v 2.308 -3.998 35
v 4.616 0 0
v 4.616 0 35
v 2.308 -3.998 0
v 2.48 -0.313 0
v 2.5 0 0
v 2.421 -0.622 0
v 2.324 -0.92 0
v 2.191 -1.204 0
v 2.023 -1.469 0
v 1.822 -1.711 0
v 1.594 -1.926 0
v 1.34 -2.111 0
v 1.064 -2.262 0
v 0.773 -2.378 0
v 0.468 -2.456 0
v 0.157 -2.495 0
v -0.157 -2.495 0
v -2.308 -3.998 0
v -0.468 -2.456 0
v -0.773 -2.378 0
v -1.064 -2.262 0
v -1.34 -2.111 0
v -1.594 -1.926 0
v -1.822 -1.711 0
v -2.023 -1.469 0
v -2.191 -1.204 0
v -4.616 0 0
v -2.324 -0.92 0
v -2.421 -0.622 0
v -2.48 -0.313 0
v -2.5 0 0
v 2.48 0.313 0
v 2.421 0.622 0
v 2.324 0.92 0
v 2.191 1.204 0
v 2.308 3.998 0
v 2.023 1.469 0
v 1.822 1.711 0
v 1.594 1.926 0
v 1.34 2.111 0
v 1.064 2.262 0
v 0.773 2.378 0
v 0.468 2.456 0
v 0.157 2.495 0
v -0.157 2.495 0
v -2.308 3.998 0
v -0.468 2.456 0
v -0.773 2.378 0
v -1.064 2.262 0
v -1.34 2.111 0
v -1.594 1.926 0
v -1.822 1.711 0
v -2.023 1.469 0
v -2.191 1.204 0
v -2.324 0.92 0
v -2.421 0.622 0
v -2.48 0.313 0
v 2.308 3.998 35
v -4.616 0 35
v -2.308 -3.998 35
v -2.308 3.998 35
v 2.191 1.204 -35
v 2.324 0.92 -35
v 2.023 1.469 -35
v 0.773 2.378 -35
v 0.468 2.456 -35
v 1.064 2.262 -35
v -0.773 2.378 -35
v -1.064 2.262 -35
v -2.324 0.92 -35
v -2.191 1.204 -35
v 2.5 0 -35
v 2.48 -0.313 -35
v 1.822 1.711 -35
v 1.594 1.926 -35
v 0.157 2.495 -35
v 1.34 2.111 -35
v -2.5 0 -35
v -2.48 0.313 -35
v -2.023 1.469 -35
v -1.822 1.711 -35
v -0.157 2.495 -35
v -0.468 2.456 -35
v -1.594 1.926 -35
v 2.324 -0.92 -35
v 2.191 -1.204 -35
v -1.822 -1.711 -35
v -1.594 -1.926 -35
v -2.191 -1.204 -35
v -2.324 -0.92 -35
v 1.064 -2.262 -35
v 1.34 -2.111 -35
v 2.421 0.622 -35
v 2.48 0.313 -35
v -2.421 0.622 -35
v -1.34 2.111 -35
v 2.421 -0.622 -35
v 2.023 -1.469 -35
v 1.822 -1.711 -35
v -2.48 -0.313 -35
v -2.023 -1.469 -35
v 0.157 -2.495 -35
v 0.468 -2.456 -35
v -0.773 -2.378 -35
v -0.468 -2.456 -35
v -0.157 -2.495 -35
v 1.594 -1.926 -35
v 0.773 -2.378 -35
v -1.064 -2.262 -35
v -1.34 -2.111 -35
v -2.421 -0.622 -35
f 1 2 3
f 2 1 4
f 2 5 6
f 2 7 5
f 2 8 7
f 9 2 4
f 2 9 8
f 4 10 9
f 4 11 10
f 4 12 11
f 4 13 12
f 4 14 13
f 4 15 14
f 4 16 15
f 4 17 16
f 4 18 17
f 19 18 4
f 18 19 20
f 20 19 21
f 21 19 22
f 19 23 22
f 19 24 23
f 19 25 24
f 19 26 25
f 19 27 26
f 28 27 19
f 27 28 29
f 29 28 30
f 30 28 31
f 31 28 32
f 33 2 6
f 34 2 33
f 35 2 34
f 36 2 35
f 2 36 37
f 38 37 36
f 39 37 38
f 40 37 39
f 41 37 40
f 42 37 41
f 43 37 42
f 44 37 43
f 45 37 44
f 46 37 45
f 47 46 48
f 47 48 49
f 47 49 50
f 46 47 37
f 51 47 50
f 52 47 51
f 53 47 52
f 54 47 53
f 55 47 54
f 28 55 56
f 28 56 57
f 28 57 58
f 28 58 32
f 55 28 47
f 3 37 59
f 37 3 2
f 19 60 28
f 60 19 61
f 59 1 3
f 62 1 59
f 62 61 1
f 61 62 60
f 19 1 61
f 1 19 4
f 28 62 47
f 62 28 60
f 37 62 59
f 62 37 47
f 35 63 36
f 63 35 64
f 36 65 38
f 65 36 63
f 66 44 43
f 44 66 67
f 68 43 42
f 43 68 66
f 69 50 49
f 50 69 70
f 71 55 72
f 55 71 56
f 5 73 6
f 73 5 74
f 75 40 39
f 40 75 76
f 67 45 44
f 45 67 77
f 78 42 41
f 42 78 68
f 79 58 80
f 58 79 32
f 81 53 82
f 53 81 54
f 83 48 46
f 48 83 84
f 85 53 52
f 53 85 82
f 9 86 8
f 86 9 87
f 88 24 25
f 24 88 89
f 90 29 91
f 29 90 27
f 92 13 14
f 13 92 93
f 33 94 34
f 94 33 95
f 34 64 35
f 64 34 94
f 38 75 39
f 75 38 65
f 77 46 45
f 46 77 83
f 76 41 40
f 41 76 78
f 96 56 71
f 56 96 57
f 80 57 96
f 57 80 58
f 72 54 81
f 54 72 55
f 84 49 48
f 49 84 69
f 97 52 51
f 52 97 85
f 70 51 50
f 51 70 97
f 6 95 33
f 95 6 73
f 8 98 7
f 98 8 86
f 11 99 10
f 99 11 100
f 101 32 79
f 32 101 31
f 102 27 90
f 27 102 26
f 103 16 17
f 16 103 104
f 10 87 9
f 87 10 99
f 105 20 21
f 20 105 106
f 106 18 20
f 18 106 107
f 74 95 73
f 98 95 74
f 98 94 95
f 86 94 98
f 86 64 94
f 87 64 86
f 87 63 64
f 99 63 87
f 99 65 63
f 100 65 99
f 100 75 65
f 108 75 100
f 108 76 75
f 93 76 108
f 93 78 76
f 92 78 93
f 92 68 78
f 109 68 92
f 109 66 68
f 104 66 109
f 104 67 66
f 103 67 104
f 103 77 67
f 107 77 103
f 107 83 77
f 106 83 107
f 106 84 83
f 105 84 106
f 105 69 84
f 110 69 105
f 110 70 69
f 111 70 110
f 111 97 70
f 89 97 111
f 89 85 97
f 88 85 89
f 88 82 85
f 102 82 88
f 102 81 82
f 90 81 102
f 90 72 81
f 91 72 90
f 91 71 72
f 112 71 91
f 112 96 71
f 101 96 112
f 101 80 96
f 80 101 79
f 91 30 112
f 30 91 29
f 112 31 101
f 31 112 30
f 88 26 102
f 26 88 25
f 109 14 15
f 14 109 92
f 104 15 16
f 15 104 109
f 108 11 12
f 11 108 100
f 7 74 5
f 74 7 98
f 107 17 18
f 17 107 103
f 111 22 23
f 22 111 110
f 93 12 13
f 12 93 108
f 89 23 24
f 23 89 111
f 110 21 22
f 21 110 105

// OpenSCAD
$fn = 50;


difference() {
	union() {
		translate(v = [0, 0, 0]) {
			rotate(a = [0, 0, 0]) {
				translate(v = [0, 0, 0]) {
					rotate(a = [0, 0, 0]) {
						linear_extrude(height = 35) {
							polygon(points = [[4.6160000000, 0.0000000000], [2.3080000000, 3.9975732639], [-2.3080000000, 3.9975732639], [-4.6160000000, 0.0000000000], [-2.3080000000, -3.9975732639], [2.3080000000, -3.9975732639]]);
						}
					}
				}
			}
		}
		translate(v = [0, 0, -35]) {
			rotate(a = [0, 0, 0]) {
				cylinder(h = 35, r = 2.5000000000);
			}
		}
	}
	union();
}
